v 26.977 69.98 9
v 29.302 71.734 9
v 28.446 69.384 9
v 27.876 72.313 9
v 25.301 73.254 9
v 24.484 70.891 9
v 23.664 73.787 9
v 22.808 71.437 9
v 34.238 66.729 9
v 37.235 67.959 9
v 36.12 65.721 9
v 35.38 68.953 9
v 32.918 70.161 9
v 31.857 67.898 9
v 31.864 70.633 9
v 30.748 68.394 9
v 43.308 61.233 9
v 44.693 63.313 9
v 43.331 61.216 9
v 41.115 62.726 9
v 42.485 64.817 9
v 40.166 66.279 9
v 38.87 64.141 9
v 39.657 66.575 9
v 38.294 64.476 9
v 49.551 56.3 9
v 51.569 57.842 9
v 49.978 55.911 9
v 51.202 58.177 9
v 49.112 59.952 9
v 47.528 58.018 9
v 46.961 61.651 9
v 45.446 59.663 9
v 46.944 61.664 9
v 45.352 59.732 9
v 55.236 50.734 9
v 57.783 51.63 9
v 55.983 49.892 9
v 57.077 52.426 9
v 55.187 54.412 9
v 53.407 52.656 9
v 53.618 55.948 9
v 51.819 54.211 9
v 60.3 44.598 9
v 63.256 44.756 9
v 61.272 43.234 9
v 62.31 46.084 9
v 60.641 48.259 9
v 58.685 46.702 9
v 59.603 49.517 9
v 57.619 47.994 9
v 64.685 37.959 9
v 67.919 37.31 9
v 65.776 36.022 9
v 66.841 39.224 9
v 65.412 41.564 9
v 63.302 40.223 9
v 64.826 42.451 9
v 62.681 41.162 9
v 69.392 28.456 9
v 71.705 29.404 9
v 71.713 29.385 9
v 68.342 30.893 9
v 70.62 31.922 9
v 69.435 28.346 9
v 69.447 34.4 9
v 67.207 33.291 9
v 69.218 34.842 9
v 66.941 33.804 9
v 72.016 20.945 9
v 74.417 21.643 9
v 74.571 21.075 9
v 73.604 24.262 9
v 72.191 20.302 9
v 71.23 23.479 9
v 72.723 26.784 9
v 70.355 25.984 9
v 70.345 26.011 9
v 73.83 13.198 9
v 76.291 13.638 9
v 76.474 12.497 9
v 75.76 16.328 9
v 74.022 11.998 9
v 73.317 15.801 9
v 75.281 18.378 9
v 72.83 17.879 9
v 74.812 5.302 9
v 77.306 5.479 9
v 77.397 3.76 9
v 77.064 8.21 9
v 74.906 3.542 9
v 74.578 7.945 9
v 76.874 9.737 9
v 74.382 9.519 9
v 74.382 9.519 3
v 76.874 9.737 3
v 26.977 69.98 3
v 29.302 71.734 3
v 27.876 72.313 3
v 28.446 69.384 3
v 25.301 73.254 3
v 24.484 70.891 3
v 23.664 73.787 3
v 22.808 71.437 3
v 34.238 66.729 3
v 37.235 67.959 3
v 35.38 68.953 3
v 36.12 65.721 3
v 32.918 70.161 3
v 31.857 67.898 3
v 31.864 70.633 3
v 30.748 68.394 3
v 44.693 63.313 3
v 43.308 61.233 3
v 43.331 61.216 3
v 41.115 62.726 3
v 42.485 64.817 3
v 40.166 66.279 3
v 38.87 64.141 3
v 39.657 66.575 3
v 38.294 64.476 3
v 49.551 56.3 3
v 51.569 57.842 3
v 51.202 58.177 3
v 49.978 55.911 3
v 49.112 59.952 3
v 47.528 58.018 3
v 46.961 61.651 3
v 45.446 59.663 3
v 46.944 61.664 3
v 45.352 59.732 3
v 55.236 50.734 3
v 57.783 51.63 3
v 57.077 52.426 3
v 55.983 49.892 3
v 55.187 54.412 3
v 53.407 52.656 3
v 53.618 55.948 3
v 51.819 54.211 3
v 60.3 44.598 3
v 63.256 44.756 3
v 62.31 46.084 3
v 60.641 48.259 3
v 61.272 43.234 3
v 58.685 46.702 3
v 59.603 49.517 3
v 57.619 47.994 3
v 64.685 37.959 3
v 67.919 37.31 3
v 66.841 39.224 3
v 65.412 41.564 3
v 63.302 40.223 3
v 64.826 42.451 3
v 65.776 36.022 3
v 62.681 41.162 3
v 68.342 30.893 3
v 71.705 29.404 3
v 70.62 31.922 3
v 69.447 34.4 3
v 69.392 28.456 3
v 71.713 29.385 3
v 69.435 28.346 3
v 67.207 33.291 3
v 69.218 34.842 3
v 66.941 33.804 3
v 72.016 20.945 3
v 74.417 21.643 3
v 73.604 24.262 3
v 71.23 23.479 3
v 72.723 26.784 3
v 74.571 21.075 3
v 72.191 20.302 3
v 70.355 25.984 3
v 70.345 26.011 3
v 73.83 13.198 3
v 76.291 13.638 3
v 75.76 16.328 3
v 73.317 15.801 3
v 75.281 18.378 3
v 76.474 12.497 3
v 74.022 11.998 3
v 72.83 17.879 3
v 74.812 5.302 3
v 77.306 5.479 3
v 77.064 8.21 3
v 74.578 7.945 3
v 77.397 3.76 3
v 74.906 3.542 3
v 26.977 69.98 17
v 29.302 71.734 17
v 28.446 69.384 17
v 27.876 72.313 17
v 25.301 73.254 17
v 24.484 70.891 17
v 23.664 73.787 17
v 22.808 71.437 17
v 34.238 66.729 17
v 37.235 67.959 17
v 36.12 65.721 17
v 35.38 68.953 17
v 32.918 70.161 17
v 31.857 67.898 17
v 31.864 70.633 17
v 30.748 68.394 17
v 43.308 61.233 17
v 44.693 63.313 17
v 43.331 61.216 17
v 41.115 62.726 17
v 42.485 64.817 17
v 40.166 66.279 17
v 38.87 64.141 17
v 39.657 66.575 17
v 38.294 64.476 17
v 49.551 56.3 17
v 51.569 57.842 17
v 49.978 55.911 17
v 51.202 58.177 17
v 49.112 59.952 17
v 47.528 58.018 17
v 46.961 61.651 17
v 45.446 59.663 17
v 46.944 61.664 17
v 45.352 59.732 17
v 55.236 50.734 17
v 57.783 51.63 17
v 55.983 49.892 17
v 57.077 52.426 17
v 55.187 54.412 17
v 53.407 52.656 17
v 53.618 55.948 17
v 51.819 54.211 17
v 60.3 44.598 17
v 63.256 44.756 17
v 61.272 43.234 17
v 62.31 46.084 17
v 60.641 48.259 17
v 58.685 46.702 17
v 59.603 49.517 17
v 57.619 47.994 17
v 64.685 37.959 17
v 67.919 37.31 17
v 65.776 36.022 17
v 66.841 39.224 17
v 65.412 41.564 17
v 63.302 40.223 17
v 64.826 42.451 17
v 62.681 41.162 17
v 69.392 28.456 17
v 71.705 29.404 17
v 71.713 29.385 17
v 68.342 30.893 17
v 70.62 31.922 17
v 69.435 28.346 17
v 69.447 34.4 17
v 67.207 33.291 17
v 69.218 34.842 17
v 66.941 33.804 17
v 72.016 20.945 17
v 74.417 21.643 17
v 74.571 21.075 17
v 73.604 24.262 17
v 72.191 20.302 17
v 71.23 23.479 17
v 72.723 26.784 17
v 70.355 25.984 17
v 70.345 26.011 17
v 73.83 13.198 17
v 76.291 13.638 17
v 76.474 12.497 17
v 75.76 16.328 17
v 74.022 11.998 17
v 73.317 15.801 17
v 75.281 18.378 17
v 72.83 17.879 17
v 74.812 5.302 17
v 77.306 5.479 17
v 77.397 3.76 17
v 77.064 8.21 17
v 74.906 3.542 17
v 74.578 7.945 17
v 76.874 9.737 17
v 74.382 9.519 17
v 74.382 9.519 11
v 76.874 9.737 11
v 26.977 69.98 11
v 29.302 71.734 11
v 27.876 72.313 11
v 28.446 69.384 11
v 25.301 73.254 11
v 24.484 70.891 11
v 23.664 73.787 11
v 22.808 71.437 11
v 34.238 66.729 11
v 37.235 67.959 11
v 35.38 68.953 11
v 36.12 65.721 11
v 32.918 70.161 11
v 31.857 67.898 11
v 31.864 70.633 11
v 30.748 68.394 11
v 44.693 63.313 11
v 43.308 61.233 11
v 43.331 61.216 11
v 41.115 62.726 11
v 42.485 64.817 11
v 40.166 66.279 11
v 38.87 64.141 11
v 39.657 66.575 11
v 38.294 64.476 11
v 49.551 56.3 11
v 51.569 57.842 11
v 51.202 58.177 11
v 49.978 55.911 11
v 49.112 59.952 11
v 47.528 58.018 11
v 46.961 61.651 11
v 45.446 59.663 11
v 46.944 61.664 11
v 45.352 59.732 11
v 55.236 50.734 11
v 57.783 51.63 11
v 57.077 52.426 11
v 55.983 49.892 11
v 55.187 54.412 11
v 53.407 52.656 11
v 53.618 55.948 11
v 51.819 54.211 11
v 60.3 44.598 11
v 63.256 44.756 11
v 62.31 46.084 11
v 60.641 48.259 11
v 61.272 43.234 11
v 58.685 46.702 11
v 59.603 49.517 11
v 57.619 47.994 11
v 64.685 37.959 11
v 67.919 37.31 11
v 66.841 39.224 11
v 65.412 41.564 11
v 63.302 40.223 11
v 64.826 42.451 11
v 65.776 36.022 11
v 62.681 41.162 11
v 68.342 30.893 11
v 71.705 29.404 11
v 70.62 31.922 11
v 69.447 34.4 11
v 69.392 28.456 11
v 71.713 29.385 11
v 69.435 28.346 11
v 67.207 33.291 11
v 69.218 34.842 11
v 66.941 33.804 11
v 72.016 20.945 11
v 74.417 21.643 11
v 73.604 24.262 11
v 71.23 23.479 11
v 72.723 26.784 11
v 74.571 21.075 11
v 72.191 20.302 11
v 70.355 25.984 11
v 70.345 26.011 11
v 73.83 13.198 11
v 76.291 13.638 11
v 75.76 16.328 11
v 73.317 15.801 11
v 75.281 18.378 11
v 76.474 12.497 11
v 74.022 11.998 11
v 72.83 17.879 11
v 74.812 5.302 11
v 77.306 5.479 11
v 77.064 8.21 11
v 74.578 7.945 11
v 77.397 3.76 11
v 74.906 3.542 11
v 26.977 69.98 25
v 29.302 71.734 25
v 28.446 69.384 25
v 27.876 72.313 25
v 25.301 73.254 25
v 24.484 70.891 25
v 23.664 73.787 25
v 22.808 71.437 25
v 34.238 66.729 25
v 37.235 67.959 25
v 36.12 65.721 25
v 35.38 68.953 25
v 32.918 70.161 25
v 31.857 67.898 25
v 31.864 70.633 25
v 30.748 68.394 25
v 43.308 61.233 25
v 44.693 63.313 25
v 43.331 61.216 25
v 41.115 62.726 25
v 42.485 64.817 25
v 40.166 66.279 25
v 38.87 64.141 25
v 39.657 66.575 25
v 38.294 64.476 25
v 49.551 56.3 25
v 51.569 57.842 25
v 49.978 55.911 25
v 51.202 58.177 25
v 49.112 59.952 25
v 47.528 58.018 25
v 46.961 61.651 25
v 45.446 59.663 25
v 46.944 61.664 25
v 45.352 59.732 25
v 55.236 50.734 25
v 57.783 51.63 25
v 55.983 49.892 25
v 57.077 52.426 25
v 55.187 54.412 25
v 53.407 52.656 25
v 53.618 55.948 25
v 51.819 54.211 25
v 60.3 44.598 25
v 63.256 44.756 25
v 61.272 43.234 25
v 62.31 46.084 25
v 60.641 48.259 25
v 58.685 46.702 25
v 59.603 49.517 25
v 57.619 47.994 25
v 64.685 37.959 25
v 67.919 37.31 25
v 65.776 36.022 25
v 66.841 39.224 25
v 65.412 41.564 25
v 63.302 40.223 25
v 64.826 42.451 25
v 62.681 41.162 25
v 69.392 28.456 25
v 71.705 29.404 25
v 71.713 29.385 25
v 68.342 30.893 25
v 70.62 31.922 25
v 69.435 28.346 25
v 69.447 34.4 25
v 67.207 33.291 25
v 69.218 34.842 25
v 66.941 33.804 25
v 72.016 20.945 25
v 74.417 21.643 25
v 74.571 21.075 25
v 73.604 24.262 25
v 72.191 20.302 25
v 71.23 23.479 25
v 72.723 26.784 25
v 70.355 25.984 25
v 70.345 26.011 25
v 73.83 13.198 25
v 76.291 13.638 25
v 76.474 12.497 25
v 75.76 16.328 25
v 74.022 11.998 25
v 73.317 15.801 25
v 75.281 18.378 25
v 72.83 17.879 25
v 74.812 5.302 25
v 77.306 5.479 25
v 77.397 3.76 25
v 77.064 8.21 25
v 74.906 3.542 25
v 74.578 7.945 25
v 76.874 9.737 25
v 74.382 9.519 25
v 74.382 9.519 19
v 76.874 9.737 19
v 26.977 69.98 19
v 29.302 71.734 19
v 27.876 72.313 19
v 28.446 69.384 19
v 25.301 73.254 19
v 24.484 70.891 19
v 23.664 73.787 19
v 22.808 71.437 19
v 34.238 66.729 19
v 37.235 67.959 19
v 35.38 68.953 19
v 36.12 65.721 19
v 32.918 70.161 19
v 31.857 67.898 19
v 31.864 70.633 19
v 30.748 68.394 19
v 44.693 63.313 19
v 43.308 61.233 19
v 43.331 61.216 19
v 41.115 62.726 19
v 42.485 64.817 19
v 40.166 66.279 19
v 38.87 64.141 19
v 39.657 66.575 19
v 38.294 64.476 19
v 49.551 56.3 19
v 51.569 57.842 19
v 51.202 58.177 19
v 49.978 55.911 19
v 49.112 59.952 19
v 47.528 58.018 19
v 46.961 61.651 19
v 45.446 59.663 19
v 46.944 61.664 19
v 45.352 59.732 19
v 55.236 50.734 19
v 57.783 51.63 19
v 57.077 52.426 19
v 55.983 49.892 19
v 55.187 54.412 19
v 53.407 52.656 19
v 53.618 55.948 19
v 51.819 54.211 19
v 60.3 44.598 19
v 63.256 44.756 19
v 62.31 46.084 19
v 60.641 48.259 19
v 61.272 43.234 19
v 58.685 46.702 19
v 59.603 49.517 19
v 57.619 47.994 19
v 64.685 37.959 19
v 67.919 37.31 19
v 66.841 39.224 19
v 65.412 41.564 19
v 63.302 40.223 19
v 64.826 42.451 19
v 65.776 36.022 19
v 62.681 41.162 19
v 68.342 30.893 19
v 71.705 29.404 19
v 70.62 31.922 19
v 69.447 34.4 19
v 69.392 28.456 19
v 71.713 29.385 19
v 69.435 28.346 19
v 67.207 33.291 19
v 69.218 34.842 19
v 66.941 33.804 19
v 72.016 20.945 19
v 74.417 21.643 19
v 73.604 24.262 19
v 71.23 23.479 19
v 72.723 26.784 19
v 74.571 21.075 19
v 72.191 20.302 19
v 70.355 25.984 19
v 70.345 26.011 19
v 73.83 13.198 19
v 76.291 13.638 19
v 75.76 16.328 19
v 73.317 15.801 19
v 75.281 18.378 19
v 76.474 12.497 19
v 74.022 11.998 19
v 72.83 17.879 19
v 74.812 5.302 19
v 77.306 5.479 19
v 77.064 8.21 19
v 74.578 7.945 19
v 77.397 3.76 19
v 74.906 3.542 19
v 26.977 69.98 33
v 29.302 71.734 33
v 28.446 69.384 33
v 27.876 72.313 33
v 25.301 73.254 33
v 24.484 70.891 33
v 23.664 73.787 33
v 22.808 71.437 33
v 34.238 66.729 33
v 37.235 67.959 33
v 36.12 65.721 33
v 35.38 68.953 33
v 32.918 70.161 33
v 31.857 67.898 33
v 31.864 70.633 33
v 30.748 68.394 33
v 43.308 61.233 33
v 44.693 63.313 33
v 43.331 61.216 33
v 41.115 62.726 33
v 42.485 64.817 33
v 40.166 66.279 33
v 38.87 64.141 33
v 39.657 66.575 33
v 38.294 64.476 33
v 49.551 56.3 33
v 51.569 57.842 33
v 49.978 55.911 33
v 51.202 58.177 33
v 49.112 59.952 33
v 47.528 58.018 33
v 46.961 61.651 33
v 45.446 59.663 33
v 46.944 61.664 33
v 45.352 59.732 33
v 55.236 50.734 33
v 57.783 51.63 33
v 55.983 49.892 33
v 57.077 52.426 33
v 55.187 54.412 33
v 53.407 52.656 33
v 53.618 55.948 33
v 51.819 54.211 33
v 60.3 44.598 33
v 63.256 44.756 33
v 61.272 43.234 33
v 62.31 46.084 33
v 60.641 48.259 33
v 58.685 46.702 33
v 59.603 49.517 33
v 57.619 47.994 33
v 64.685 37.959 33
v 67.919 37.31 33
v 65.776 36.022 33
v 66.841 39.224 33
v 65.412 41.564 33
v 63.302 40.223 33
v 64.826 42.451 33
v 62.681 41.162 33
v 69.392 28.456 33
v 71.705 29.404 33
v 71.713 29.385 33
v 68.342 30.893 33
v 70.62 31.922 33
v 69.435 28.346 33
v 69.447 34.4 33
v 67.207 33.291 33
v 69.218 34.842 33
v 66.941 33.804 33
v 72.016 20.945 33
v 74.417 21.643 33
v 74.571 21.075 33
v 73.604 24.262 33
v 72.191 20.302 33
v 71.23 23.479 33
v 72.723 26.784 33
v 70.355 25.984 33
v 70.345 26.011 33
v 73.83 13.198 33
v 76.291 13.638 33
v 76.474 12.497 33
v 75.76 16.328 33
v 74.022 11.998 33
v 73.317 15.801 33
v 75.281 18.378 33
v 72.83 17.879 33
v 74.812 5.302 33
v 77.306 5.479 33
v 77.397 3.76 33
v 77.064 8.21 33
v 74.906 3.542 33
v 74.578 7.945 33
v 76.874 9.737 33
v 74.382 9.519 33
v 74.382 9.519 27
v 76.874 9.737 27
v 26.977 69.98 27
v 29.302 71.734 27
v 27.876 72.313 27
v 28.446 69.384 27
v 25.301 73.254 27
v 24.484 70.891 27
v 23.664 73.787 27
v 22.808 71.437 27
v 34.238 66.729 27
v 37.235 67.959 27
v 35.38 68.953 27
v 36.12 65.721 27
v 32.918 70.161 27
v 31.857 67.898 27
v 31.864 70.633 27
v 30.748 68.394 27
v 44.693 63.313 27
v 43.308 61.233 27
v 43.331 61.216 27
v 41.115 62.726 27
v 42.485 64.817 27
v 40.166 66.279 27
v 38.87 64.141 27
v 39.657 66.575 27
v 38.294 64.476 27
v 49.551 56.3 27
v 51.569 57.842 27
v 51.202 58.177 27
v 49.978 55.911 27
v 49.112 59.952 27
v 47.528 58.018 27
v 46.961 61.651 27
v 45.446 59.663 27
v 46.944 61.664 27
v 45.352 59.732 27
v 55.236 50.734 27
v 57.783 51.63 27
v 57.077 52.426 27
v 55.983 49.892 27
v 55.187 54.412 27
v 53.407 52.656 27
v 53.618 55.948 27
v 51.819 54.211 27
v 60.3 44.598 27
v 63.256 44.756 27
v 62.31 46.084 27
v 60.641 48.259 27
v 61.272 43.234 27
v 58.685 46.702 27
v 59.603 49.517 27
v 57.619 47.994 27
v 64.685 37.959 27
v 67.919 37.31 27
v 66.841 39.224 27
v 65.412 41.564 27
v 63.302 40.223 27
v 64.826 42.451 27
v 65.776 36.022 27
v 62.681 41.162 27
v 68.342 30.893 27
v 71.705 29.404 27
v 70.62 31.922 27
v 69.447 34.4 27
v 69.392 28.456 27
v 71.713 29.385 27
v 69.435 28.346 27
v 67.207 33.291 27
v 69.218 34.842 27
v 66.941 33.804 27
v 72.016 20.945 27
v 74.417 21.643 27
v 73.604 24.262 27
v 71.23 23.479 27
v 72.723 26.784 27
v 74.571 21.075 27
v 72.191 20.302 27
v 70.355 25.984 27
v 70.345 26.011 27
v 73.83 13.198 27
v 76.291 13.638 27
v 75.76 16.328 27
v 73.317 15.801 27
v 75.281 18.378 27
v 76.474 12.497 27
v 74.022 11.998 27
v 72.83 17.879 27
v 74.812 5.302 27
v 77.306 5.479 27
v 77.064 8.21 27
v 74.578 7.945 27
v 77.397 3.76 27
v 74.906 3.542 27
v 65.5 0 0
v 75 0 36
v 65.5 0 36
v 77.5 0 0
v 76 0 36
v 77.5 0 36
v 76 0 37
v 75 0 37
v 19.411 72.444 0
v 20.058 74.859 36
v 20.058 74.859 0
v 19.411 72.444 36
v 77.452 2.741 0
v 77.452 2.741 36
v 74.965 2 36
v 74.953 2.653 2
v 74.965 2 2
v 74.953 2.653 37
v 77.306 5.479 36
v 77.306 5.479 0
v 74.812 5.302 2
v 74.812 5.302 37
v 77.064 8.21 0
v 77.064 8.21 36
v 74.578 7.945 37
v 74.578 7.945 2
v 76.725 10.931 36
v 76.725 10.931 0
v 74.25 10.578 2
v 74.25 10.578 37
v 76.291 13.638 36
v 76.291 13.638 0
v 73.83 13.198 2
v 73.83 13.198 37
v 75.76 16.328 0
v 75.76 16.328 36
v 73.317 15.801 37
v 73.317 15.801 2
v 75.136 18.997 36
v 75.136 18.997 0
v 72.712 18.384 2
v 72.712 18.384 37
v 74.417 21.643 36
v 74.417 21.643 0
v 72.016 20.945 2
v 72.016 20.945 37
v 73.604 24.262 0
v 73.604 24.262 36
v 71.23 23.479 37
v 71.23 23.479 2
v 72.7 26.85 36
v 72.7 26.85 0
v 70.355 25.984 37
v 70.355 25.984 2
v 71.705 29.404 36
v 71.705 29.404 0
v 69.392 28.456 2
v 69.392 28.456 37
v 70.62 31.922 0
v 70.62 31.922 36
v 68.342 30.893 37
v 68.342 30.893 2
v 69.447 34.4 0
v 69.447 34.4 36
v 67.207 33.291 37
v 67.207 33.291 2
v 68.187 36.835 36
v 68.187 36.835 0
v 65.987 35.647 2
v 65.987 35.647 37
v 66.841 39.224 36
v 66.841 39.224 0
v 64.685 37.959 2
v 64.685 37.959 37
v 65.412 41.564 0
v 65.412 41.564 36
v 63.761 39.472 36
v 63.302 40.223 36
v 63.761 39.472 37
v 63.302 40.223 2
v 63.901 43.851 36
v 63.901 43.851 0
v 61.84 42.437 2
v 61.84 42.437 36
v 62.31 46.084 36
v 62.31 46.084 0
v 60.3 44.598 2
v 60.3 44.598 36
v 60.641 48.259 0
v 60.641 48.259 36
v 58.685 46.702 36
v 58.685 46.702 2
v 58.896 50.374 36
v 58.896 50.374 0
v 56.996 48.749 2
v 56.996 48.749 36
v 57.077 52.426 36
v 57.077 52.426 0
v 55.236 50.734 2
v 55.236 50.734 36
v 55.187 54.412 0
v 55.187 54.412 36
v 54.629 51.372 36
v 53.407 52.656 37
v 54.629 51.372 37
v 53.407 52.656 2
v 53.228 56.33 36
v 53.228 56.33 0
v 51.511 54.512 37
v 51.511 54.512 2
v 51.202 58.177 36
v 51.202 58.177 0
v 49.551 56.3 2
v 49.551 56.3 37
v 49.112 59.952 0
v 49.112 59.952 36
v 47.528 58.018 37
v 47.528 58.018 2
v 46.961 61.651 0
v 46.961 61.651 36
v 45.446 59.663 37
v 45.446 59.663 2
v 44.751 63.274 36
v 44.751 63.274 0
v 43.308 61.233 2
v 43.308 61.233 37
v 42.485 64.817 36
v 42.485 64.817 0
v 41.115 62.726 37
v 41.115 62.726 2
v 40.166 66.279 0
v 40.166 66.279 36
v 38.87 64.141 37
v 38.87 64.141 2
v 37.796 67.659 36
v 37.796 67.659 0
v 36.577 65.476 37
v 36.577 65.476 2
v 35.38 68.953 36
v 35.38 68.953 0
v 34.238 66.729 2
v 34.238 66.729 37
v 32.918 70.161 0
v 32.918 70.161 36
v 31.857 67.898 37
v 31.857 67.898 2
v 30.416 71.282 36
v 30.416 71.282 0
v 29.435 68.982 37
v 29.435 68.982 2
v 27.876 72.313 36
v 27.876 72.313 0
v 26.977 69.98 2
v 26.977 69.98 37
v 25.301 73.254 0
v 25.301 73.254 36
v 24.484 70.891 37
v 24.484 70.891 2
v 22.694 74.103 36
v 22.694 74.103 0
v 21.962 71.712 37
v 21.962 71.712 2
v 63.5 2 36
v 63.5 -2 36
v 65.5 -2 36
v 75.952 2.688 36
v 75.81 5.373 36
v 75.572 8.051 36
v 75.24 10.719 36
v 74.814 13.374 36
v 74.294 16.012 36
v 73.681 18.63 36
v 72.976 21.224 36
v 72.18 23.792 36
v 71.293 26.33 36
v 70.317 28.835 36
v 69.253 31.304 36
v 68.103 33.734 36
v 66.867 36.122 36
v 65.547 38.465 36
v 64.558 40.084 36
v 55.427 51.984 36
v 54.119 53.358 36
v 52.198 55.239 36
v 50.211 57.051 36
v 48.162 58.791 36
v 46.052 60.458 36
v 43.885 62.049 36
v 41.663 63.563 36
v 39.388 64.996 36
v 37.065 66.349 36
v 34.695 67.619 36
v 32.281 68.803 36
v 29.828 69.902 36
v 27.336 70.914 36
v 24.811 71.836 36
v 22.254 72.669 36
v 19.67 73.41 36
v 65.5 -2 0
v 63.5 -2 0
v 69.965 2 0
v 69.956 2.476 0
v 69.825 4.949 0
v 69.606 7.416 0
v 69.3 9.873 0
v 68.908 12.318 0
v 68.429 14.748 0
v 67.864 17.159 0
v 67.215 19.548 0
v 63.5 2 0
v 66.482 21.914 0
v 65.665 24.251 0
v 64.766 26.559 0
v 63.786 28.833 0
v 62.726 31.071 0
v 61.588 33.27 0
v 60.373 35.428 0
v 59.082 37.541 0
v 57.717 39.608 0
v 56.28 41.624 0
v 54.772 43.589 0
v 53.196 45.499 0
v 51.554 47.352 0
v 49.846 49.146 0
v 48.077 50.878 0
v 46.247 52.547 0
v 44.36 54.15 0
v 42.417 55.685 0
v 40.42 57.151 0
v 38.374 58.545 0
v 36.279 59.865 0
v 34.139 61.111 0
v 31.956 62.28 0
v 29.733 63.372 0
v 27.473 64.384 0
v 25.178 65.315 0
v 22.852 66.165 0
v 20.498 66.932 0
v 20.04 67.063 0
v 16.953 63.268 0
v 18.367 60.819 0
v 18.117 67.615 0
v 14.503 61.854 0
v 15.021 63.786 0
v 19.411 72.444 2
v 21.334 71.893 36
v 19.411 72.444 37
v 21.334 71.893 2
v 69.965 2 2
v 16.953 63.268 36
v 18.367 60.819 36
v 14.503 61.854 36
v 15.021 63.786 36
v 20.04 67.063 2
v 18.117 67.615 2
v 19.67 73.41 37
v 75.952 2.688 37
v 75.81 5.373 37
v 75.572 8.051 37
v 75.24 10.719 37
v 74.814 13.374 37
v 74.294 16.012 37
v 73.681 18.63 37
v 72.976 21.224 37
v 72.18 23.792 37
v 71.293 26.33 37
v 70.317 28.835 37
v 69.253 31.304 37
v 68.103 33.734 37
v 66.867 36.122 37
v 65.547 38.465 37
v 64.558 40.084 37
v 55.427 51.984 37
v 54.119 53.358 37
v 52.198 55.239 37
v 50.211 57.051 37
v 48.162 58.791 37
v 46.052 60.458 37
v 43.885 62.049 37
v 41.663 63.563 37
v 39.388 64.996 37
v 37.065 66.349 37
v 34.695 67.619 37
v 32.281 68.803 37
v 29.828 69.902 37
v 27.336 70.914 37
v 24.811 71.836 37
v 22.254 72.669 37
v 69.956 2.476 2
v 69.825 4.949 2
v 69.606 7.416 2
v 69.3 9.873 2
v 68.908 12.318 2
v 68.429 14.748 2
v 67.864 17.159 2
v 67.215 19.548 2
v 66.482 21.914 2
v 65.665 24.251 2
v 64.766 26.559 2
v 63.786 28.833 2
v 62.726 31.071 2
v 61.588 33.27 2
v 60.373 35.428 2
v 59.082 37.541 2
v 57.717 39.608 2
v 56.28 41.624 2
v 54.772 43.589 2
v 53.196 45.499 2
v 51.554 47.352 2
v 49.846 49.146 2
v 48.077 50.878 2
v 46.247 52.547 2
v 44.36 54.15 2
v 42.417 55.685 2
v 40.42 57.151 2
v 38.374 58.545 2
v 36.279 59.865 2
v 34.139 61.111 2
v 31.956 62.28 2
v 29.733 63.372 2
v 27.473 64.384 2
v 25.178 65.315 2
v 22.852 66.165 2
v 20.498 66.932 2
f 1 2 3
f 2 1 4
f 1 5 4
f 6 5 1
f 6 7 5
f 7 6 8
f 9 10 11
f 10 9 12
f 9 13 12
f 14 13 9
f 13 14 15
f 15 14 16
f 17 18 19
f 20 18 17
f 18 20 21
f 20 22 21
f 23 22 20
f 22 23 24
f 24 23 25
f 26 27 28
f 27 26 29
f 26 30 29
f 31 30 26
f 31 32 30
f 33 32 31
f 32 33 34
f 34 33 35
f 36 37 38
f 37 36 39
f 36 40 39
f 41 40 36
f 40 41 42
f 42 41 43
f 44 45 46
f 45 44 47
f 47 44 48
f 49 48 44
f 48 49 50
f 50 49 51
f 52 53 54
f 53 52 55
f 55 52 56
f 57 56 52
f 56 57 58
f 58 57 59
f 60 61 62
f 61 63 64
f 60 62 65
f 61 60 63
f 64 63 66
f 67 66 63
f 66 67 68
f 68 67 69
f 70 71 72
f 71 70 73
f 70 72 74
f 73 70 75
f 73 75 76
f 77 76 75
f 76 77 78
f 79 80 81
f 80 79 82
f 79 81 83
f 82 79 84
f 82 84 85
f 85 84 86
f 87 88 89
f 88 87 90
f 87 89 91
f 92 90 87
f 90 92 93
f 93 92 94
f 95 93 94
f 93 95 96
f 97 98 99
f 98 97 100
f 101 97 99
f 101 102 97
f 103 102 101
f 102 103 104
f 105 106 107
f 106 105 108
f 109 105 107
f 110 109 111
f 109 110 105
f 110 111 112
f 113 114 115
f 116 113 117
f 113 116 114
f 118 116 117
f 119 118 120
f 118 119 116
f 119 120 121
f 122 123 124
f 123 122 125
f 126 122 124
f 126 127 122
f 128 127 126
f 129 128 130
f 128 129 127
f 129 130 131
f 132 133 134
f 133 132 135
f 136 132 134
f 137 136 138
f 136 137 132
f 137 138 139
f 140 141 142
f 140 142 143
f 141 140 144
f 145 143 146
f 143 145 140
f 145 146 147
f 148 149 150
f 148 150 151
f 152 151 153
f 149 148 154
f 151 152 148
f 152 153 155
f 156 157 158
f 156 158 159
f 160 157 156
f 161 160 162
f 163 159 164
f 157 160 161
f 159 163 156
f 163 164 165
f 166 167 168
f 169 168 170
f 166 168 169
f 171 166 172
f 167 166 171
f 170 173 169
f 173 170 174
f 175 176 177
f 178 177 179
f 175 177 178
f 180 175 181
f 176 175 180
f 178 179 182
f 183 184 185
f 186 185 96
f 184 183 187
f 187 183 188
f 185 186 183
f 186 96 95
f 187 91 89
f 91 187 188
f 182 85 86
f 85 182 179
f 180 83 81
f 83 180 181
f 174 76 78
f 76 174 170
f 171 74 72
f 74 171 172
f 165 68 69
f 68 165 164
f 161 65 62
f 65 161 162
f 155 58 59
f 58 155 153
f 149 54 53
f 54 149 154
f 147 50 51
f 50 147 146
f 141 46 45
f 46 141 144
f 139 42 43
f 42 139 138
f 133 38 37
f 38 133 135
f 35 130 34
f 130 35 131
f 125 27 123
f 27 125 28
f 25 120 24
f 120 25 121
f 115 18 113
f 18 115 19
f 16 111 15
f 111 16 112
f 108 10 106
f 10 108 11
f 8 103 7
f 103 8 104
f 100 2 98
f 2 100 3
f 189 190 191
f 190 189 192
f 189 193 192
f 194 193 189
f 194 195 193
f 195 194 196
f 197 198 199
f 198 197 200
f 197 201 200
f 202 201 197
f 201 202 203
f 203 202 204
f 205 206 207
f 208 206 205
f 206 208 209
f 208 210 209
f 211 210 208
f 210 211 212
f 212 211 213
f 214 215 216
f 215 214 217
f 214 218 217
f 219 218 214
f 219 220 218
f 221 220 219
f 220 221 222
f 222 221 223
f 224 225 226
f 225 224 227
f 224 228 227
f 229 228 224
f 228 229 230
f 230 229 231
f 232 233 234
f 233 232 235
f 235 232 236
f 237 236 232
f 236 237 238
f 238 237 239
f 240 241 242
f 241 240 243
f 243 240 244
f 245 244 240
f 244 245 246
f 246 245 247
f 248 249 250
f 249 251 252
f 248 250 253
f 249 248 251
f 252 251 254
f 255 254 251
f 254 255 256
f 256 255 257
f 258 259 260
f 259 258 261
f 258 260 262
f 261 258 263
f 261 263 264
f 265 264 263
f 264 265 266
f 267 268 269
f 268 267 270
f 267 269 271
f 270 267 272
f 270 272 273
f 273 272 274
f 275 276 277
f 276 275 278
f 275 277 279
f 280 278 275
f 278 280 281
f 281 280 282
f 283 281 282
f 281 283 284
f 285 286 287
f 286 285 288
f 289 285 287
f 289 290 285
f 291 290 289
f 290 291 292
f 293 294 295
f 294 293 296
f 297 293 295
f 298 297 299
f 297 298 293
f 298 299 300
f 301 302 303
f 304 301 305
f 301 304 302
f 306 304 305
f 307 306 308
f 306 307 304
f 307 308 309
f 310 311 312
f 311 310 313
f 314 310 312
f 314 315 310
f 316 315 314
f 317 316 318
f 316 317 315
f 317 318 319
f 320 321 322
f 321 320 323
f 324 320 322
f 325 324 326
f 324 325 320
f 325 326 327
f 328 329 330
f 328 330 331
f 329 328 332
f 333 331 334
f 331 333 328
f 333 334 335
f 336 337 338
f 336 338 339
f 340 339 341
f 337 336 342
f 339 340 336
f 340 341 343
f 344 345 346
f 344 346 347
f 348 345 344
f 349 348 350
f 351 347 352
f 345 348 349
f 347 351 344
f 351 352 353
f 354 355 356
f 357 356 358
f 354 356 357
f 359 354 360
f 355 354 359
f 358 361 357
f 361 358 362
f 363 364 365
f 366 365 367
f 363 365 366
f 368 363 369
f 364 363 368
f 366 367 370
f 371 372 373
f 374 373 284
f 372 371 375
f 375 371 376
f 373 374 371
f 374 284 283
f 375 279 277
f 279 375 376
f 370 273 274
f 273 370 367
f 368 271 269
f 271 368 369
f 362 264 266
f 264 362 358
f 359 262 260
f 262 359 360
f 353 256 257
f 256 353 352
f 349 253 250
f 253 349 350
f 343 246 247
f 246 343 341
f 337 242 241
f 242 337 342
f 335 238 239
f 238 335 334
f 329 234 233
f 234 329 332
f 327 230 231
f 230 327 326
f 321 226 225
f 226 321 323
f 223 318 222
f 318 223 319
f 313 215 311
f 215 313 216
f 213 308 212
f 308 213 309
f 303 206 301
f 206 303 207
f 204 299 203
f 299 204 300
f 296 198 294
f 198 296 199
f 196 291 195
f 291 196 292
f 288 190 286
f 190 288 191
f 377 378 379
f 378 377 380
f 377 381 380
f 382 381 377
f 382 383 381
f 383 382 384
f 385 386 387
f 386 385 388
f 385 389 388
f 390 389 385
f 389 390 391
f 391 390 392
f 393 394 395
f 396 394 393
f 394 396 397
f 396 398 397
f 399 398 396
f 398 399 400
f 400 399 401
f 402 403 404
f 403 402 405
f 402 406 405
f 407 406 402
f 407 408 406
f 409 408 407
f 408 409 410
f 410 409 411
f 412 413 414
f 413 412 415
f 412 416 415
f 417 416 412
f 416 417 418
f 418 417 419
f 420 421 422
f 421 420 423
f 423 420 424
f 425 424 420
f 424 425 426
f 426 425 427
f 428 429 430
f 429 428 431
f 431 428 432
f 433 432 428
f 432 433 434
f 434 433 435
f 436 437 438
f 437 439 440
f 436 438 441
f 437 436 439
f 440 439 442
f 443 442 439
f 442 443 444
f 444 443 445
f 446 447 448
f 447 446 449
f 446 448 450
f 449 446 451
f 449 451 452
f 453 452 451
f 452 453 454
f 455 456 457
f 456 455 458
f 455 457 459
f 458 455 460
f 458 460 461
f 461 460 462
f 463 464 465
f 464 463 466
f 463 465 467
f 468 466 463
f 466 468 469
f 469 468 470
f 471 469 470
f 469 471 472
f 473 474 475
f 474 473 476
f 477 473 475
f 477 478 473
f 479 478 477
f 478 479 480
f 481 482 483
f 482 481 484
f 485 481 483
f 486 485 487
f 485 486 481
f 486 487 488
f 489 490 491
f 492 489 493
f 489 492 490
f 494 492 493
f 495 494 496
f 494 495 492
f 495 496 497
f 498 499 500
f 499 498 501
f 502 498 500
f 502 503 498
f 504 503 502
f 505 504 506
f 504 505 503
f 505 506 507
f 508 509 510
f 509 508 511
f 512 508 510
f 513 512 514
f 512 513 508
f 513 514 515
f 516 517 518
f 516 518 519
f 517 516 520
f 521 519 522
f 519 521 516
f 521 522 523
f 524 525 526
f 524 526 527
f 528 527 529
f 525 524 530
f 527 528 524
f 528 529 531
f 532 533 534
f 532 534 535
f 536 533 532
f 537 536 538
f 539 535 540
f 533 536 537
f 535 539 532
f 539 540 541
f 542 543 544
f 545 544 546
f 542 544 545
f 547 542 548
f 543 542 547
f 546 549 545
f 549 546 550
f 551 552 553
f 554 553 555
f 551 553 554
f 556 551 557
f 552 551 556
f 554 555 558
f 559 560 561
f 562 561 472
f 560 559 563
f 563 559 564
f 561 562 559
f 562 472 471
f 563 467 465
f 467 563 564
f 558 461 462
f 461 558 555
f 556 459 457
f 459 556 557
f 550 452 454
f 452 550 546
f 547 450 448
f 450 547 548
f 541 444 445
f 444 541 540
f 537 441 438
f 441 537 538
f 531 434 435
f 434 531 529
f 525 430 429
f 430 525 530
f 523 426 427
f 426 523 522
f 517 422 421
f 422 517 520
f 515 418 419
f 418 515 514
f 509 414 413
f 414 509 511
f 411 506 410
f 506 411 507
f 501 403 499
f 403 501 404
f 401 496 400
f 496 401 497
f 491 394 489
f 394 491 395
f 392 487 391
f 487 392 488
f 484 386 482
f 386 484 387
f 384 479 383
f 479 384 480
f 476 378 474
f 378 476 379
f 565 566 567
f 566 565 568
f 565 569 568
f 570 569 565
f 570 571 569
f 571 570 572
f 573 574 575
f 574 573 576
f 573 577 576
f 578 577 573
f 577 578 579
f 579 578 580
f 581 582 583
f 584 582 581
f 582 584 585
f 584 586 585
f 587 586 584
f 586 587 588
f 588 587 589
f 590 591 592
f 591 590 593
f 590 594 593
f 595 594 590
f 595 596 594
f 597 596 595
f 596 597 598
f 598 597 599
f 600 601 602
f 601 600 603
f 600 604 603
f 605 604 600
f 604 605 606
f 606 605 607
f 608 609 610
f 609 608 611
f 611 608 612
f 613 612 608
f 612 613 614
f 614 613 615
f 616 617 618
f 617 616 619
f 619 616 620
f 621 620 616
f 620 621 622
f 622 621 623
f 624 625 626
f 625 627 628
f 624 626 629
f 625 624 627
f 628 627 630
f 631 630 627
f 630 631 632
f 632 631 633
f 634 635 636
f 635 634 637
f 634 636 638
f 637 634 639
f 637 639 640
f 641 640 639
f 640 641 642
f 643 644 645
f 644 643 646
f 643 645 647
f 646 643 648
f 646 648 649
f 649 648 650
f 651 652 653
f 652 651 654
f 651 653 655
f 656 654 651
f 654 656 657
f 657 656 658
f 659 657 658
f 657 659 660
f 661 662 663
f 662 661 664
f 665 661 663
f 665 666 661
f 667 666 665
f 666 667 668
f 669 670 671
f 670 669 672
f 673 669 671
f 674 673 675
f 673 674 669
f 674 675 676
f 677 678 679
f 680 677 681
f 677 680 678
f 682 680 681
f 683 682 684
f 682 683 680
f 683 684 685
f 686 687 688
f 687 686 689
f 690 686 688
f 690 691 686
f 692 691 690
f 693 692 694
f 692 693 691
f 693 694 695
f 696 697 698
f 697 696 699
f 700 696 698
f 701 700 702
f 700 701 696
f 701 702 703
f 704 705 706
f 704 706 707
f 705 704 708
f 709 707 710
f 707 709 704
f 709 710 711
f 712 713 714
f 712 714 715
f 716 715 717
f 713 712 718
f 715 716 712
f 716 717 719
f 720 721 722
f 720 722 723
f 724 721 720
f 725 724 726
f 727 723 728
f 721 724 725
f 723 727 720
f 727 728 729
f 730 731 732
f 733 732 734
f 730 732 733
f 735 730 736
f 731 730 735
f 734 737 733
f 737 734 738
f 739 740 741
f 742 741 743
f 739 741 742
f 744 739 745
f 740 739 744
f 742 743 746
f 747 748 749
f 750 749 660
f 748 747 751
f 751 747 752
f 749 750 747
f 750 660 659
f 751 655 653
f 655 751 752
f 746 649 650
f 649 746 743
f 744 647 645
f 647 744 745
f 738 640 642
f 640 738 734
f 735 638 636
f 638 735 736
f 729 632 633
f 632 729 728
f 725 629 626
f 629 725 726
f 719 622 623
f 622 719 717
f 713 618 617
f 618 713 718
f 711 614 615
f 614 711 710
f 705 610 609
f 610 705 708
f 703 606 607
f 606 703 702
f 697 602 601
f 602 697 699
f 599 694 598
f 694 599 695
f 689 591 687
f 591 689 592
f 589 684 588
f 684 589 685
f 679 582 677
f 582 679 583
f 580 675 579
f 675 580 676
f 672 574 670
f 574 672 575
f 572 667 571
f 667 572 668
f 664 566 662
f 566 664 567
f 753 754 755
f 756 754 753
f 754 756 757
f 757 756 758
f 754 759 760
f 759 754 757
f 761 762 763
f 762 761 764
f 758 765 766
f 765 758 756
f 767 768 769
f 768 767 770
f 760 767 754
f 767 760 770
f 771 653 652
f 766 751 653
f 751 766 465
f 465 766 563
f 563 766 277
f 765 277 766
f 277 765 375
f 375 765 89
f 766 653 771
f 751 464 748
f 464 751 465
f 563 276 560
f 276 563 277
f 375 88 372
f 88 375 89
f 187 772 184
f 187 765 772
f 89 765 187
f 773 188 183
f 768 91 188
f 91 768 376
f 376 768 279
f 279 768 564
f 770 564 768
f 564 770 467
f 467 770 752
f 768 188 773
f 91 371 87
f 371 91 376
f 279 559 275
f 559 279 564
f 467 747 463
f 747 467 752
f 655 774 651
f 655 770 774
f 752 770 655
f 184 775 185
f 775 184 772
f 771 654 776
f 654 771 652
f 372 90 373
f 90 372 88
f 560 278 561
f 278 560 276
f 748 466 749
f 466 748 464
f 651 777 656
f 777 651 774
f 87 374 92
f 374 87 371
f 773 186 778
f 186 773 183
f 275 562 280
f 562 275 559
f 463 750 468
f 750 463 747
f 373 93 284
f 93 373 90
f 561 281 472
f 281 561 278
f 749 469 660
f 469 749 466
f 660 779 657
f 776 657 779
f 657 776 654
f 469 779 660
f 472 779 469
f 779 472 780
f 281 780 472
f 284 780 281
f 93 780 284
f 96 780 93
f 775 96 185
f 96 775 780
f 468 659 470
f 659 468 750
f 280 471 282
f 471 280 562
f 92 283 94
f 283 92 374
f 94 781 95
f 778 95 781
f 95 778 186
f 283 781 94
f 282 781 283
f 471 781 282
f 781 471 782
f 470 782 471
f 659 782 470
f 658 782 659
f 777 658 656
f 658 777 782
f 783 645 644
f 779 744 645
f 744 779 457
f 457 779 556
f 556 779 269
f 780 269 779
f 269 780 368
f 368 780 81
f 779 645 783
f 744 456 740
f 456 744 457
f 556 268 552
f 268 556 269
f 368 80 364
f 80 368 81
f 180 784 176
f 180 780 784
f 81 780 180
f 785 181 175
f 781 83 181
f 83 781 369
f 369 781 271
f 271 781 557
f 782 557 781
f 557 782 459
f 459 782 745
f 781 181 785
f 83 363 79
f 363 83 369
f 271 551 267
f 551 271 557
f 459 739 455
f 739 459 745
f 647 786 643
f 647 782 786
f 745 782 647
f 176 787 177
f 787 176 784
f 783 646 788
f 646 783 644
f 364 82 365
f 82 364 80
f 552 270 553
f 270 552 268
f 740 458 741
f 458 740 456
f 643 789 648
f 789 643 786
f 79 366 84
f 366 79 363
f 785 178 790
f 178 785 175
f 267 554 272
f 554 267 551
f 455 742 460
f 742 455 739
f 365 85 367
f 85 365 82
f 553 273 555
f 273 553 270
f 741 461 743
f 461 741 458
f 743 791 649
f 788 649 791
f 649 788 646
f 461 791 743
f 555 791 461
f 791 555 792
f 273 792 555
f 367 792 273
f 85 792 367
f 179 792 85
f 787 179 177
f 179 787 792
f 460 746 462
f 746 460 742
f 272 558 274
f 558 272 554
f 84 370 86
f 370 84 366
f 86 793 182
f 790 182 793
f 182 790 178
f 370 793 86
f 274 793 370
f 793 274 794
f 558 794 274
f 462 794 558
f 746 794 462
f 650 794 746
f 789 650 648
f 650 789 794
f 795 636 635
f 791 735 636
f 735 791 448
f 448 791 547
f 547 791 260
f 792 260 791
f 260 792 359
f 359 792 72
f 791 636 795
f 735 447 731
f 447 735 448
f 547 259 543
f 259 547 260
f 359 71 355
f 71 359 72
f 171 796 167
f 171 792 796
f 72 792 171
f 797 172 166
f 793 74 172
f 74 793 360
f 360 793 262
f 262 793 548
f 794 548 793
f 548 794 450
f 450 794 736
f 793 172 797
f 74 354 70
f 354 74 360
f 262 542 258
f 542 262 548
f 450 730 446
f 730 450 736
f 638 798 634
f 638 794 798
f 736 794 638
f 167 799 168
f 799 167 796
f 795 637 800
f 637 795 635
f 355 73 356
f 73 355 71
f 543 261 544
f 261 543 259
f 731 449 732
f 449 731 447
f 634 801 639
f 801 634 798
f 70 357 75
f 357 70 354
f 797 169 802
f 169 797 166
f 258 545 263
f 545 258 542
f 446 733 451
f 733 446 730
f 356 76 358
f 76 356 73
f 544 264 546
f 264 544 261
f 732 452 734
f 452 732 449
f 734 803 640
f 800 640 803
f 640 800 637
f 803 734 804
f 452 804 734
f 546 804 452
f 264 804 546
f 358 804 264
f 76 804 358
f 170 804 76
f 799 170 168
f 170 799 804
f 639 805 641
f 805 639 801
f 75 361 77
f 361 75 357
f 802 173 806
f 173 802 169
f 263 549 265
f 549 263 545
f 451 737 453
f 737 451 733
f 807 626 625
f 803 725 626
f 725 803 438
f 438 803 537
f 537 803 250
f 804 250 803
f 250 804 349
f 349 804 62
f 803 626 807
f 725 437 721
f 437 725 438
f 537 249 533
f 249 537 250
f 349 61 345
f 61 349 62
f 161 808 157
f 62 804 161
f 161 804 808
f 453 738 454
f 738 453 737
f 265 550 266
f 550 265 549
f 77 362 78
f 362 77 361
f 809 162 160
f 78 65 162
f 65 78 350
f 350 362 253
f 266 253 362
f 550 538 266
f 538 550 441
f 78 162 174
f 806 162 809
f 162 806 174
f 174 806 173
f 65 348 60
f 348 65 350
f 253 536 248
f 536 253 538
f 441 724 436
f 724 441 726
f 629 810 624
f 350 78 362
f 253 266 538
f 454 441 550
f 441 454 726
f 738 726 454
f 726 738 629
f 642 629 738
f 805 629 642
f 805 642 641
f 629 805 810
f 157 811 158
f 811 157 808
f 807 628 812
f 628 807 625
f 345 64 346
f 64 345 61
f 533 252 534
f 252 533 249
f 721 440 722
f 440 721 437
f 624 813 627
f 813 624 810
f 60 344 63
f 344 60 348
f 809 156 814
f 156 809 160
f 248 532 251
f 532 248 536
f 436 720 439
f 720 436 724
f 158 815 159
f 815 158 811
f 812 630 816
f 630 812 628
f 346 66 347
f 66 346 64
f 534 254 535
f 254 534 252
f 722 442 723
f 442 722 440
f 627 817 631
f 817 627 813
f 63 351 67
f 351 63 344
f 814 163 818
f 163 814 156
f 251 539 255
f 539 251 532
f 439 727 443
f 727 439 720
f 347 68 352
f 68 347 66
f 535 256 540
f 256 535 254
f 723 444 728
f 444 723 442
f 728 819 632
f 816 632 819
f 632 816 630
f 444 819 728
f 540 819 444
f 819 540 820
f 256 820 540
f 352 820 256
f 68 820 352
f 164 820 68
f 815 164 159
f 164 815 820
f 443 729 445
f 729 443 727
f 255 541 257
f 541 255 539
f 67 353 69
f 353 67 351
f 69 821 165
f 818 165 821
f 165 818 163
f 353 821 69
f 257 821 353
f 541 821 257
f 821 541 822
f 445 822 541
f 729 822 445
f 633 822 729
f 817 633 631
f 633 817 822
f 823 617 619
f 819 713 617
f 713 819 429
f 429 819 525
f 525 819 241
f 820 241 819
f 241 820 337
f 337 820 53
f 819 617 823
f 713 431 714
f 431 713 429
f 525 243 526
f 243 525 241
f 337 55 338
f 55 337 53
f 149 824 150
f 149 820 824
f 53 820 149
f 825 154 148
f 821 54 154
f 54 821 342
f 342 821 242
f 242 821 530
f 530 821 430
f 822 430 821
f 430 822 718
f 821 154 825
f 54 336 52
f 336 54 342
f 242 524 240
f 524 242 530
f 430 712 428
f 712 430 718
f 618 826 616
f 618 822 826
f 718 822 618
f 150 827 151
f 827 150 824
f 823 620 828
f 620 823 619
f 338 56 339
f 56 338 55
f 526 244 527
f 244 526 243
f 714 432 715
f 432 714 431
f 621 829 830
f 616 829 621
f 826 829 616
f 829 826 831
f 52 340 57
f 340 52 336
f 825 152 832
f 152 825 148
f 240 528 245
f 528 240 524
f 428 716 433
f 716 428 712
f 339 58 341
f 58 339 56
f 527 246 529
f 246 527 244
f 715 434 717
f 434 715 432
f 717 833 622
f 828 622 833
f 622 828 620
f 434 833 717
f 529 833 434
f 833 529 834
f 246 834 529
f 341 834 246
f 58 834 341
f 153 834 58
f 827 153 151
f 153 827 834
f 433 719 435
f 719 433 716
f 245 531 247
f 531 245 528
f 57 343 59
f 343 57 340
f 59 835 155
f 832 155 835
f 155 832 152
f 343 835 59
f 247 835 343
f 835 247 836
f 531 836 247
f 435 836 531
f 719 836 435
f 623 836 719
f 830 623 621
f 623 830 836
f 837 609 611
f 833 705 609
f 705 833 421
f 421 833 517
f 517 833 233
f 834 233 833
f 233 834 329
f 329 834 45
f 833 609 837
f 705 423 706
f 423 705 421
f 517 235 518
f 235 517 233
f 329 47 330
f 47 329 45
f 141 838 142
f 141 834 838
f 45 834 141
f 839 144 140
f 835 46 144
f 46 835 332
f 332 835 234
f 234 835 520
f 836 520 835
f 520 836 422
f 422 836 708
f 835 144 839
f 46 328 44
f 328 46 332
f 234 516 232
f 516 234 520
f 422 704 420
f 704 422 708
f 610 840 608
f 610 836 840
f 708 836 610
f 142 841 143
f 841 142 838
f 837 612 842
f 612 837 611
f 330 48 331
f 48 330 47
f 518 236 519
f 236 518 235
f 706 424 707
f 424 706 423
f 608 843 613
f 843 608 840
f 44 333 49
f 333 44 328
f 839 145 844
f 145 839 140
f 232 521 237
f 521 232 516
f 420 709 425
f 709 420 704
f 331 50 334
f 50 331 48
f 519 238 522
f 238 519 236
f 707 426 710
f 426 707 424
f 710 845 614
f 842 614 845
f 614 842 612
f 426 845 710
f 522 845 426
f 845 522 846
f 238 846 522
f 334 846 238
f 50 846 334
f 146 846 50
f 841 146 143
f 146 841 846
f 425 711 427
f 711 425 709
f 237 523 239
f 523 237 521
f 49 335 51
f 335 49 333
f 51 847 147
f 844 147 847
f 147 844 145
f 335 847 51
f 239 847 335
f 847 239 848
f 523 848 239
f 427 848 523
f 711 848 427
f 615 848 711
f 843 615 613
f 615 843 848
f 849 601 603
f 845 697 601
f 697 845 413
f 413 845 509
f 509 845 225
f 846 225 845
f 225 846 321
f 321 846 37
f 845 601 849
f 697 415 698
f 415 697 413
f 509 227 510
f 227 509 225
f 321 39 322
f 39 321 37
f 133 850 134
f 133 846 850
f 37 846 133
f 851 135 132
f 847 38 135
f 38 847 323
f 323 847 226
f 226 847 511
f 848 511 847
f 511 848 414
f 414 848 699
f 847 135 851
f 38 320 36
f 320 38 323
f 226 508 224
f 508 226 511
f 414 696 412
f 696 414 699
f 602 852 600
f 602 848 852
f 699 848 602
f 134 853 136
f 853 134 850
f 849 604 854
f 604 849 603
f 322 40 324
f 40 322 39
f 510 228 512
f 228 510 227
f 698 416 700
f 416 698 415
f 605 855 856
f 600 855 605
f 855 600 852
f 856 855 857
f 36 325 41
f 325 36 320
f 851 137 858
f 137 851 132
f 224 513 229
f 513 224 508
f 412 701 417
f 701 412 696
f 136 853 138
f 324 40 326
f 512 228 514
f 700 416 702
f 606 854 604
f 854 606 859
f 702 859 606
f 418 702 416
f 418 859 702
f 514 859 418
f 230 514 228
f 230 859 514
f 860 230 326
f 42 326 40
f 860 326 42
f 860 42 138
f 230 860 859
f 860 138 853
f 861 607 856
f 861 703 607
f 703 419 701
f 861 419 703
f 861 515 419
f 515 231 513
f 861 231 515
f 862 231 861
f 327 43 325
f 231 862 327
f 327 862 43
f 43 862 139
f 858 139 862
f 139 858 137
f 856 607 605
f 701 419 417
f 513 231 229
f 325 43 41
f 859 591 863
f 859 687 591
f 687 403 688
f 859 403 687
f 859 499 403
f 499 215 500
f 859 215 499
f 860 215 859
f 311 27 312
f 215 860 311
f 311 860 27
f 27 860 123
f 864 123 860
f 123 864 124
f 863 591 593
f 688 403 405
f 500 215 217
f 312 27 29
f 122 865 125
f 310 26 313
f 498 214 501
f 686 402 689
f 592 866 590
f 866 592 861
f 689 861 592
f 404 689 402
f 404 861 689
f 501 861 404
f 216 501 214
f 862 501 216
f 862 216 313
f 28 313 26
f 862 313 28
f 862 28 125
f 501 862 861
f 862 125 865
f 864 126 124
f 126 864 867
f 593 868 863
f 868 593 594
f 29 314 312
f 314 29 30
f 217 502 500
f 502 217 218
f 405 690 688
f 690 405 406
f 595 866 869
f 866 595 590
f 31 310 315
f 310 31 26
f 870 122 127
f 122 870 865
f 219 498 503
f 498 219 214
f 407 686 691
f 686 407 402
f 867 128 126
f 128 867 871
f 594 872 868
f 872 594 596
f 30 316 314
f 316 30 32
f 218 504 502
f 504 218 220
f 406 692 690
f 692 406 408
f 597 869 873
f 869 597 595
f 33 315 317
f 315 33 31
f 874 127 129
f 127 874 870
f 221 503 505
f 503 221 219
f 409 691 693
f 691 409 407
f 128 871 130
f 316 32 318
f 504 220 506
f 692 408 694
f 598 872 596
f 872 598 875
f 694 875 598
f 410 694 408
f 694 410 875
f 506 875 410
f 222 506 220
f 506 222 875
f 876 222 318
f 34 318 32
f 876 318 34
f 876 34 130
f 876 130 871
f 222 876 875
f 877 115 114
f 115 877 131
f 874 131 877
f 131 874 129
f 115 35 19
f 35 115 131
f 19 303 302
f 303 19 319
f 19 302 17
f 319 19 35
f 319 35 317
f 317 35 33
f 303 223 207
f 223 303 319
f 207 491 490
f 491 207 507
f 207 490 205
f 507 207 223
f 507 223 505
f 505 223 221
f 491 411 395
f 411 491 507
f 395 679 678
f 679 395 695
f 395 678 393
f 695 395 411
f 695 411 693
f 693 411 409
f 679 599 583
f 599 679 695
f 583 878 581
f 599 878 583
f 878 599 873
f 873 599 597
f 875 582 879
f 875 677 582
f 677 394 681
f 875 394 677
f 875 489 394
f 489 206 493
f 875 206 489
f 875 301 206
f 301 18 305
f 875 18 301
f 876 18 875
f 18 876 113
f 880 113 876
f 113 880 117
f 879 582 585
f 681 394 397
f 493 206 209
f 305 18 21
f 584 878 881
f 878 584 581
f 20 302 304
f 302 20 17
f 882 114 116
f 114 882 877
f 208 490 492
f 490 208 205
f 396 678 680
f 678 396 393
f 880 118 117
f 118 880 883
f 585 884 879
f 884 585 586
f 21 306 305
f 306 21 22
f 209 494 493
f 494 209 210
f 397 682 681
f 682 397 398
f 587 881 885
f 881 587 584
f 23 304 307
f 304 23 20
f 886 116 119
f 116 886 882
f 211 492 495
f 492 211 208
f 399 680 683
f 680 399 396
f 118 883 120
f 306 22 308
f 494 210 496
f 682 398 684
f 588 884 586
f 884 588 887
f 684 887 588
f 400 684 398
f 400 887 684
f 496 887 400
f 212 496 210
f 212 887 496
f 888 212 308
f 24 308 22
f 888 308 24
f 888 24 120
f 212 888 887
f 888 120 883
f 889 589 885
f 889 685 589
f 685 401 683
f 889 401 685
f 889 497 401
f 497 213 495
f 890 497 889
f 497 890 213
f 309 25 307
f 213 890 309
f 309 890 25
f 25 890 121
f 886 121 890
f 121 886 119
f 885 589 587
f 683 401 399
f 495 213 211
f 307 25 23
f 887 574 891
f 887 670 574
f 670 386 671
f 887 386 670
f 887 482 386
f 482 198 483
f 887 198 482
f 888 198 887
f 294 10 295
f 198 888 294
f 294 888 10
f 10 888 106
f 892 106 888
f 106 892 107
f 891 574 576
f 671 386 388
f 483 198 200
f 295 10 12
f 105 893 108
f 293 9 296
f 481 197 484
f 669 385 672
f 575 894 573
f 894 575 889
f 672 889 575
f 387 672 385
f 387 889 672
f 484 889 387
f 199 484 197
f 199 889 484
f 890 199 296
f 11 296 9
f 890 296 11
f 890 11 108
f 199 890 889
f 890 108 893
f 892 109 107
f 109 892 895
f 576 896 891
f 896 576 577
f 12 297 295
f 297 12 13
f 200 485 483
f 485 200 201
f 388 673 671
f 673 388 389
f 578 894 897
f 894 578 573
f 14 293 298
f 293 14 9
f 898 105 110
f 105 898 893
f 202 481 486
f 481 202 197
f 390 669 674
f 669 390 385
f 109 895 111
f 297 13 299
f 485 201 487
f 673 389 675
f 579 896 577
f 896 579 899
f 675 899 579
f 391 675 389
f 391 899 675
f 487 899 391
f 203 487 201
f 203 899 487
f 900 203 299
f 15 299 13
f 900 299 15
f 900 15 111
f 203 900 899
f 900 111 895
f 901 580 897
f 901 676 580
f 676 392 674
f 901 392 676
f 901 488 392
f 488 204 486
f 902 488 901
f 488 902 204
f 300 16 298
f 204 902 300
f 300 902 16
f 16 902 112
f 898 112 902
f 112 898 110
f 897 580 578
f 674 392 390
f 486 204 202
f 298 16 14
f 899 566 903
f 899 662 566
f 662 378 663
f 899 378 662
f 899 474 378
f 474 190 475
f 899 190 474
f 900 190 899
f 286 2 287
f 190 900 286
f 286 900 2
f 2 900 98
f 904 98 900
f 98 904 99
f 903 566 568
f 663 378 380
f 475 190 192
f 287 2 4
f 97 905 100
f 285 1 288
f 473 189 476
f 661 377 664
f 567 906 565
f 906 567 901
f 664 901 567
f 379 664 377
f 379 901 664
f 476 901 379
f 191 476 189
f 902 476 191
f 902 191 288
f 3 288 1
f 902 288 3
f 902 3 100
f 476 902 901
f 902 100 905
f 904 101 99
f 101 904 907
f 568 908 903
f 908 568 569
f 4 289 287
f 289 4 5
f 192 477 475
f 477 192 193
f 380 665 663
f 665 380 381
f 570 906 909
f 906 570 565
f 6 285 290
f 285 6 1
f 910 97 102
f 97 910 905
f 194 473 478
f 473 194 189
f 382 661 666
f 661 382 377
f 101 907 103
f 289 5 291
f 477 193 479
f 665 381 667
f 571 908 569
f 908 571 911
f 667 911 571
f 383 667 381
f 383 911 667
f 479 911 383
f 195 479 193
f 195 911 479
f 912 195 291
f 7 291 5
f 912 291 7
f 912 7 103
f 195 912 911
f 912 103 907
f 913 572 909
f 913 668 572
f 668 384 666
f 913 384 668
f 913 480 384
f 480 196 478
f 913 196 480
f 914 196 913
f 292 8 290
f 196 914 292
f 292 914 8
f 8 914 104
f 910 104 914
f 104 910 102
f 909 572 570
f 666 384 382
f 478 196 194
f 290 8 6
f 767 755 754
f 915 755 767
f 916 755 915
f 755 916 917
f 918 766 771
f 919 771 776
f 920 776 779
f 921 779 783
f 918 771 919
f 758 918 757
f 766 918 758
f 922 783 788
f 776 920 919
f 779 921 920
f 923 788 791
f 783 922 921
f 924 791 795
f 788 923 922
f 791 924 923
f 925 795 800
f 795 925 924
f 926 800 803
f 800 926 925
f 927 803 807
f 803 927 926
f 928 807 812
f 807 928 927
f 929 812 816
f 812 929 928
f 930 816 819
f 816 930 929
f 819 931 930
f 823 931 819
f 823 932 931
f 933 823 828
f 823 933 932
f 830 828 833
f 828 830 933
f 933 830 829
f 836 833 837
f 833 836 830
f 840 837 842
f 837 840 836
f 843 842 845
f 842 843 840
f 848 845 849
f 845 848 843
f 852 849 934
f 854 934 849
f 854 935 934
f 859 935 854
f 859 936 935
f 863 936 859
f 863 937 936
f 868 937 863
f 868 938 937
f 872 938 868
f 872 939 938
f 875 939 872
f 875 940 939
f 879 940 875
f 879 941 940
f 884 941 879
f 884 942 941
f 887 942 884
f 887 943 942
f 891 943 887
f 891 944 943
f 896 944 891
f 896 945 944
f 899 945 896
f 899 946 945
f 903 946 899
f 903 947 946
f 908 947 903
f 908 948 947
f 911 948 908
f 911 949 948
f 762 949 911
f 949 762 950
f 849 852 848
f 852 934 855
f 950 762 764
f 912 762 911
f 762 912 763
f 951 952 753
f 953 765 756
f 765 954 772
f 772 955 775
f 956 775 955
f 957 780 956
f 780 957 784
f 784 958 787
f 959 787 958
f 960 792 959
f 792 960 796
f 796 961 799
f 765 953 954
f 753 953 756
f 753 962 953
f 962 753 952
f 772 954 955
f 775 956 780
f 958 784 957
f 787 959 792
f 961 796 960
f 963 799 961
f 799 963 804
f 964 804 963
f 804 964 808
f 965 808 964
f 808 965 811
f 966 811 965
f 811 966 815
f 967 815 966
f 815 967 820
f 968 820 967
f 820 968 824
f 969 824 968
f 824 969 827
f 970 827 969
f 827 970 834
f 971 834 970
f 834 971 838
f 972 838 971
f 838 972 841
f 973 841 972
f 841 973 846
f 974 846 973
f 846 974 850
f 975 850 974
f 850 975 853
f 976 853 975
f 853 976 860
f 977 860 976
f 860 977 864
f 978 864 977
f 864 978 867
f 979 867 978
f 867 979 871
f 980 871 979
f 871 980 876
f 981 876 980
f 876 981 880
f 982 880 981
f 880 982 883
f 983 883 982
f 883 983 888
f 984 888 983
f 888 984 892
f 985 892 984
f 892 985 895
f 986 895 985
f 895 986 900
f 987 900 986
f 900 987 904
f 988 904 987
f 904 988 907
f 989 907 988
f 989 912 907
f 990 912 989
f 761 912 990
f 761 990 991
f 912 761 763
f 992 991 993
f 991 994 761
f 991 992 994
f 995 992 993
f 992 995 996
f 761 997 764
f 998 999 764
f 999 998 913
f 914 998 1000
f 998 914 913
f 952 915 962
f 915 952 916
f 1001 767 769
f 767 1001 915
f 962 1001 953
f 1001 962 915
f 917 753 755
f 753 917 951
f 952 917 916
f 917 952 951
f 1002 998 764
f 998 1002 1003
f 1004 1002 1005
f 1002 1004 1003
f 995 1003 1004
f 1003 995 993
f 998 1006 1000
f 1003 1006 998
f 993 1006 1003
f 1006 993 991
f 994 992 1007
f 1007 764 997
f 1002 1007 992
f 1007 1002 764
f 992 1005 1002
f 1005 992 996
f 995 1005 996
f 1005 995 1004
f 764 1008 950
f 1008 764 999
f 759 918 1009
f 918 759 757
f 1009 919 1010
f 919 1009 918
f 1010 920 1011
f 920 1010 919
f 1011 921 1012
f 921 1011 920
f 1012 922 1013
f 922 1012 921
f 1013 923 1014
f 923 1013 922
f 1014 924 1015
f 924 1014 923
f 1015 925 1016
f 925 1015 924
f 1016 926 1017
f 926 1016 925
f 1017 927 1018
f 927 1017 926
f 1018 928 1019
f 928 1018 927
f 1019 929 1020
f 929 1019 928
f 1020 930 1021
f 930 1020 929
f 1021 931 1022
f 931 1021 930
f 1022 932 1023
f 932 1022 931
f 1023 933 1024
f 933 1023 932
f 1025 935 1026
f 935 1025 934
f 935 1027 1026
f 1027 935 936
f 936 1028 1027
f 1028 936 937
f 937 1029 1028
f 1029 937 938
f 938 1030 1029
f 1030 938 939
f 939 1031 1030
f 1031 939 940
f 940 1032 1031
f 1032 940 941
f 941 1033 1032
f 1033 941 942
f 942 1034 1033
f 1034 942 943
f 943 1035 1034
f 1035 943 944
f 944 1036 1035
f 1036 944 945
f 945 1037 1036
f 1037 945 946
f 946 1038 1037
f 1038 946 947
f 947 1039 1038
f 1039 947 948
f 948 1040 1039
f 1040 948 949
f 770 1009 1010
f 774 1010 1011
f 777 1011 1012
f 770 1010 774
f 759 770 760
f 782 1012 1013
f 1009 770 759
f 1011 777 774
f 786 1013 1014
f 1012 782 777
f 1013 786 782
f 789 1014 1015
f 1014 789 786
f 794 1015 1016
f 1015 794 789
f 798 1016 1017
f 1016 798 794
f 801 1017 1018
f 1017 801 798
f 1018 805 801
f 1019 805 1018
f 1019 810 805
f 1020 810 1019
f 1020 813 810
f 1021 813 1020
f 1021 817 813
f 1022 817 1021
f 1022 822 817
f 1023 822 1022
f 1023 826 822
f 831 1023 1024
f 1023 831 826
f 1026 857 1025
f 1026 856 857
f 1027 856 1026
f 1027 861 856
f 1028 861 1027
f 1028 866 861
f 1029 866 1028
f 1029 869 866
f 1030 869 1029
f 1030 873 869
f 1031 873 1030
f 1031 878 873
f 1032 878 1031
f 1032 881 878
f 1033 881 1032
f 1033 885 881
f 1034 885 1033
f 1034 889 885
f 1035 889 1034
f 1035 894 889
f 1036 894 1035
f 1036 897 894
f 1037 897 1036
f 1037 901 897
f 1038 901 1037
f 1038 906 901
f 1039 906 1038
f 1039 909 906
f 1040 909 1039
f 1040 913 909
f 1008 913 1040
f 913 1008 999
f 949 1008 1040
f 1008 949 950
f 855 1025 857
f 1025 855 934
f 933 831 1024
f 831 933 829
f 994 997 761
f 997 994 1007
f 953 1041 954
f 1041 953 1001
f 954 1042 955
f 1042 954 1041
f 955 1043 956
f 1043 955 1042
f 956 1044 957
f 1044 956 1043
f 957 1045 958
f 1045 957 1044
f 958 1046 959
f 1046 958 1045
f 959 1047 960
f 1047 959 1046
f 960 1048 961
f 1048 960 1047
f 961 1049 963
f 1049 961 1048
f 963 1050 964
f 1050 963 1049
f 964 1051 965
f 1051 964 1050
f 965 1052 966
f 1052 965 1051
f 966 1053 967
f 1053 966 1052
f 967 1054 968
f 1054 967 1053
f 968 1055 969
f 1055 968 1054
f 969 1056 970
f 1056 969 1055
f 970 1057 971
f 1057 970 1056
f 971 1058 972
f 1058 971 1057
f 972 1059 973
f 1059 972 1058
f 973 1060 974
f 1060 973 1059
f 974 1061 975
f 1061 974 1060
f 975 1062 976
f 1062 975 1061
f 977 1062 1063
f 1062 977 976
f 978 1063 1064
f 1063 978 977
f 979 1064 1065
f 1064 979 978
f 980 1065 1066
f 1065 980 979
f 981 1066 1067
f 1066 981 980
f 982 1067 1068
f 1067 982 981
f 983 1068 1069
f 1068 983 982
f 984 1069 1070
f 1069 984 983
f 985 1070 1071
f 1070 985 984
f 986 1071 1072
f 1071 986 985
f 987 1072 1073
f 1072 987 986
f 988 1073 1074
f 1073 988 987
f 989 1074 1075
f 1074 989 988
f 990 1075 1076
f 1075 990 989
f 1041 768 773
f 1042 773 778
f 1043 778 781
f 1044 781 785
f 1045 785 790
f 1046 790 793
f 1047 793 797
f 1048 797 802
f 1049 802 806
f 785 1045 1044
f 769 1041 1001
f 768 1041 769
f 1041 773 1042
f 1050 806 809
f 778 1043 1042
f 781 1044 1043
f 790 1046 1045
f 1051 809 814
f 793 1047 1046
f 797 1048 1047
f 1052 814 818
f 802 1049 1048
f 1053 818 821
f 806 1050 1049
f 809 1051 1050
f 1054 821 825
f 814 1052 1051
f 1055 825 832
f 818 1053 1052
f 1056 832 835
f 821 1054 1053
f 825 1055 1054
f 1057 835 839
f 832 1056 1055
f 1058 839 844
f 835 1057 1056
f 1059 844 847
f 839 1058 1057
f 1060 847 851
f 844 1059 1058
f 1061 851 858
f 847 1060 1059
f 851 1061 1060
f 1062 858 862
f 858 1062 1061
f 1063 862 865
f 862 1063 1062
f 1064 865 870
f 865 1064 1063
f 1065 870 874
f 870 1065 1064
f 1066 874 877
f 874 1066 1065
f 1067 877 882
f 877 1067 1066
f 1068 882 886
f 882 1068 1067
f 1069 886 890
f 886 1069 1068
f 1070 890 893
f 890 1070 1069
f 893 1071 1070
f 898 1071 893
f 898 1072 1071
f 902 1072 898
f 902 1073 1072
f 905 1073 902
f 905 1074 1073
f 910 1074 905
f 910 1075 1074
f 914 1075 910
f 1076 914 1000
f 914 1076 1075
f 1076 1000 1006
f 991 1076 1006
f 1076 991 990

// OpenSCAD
diameter = 155;
height = 36;

bottom_inset = 15;
side_inset = 14;

hole = height/6;
gap = 2;

//a=77.5 b=94 C=74.667
angle = 75;
$fn = 360/2;

module arc(a, id, od, h) {
	// Outer ring
	rotate_extrude(angle=a) translate([id/2, 0, 0]) square([(od-id)/2, h]);
}

module clip() {
	translate([-side_inset, 0, 0]) {
		cube([side_inset-2, 2, height]);
		translate([0, -2, 0]) cube([2, 4, height]);
	}
}

module grid() {
	difference() {
		arc(a=angle, od=diameter, id=diameter-5, h=height);
		
		for (z = [hole:hole+2:height-hole]) {
			translate([0, 0, z])
			for (r = [0+5:(angle-10)/10:angle-5]) {
				rotate([0, 0, r])
				cube([diameter, hole, hole], center=true);
			}
		}
	}
	
	arc(a=angle, od=diameter, id=diameter-bottom_inset, h=2);
	
	translate([0, 0, height]) {
		difference() {
			arc(a=angle, od=diameter-3, id=diameter-5, h=1);
			rotate([0, 0, angle/2]) translate([diameter/2, 0, 1]) cube([15, 15, 2], center=true);
		}
	}
	
	translate([diameter/2, 0, 0]) clip();
	
	rotate([0, 0, angle]) mirror([0, 1, 0])
	translate([diameter/2, 0, 0]) clip();
}

render() grid();
